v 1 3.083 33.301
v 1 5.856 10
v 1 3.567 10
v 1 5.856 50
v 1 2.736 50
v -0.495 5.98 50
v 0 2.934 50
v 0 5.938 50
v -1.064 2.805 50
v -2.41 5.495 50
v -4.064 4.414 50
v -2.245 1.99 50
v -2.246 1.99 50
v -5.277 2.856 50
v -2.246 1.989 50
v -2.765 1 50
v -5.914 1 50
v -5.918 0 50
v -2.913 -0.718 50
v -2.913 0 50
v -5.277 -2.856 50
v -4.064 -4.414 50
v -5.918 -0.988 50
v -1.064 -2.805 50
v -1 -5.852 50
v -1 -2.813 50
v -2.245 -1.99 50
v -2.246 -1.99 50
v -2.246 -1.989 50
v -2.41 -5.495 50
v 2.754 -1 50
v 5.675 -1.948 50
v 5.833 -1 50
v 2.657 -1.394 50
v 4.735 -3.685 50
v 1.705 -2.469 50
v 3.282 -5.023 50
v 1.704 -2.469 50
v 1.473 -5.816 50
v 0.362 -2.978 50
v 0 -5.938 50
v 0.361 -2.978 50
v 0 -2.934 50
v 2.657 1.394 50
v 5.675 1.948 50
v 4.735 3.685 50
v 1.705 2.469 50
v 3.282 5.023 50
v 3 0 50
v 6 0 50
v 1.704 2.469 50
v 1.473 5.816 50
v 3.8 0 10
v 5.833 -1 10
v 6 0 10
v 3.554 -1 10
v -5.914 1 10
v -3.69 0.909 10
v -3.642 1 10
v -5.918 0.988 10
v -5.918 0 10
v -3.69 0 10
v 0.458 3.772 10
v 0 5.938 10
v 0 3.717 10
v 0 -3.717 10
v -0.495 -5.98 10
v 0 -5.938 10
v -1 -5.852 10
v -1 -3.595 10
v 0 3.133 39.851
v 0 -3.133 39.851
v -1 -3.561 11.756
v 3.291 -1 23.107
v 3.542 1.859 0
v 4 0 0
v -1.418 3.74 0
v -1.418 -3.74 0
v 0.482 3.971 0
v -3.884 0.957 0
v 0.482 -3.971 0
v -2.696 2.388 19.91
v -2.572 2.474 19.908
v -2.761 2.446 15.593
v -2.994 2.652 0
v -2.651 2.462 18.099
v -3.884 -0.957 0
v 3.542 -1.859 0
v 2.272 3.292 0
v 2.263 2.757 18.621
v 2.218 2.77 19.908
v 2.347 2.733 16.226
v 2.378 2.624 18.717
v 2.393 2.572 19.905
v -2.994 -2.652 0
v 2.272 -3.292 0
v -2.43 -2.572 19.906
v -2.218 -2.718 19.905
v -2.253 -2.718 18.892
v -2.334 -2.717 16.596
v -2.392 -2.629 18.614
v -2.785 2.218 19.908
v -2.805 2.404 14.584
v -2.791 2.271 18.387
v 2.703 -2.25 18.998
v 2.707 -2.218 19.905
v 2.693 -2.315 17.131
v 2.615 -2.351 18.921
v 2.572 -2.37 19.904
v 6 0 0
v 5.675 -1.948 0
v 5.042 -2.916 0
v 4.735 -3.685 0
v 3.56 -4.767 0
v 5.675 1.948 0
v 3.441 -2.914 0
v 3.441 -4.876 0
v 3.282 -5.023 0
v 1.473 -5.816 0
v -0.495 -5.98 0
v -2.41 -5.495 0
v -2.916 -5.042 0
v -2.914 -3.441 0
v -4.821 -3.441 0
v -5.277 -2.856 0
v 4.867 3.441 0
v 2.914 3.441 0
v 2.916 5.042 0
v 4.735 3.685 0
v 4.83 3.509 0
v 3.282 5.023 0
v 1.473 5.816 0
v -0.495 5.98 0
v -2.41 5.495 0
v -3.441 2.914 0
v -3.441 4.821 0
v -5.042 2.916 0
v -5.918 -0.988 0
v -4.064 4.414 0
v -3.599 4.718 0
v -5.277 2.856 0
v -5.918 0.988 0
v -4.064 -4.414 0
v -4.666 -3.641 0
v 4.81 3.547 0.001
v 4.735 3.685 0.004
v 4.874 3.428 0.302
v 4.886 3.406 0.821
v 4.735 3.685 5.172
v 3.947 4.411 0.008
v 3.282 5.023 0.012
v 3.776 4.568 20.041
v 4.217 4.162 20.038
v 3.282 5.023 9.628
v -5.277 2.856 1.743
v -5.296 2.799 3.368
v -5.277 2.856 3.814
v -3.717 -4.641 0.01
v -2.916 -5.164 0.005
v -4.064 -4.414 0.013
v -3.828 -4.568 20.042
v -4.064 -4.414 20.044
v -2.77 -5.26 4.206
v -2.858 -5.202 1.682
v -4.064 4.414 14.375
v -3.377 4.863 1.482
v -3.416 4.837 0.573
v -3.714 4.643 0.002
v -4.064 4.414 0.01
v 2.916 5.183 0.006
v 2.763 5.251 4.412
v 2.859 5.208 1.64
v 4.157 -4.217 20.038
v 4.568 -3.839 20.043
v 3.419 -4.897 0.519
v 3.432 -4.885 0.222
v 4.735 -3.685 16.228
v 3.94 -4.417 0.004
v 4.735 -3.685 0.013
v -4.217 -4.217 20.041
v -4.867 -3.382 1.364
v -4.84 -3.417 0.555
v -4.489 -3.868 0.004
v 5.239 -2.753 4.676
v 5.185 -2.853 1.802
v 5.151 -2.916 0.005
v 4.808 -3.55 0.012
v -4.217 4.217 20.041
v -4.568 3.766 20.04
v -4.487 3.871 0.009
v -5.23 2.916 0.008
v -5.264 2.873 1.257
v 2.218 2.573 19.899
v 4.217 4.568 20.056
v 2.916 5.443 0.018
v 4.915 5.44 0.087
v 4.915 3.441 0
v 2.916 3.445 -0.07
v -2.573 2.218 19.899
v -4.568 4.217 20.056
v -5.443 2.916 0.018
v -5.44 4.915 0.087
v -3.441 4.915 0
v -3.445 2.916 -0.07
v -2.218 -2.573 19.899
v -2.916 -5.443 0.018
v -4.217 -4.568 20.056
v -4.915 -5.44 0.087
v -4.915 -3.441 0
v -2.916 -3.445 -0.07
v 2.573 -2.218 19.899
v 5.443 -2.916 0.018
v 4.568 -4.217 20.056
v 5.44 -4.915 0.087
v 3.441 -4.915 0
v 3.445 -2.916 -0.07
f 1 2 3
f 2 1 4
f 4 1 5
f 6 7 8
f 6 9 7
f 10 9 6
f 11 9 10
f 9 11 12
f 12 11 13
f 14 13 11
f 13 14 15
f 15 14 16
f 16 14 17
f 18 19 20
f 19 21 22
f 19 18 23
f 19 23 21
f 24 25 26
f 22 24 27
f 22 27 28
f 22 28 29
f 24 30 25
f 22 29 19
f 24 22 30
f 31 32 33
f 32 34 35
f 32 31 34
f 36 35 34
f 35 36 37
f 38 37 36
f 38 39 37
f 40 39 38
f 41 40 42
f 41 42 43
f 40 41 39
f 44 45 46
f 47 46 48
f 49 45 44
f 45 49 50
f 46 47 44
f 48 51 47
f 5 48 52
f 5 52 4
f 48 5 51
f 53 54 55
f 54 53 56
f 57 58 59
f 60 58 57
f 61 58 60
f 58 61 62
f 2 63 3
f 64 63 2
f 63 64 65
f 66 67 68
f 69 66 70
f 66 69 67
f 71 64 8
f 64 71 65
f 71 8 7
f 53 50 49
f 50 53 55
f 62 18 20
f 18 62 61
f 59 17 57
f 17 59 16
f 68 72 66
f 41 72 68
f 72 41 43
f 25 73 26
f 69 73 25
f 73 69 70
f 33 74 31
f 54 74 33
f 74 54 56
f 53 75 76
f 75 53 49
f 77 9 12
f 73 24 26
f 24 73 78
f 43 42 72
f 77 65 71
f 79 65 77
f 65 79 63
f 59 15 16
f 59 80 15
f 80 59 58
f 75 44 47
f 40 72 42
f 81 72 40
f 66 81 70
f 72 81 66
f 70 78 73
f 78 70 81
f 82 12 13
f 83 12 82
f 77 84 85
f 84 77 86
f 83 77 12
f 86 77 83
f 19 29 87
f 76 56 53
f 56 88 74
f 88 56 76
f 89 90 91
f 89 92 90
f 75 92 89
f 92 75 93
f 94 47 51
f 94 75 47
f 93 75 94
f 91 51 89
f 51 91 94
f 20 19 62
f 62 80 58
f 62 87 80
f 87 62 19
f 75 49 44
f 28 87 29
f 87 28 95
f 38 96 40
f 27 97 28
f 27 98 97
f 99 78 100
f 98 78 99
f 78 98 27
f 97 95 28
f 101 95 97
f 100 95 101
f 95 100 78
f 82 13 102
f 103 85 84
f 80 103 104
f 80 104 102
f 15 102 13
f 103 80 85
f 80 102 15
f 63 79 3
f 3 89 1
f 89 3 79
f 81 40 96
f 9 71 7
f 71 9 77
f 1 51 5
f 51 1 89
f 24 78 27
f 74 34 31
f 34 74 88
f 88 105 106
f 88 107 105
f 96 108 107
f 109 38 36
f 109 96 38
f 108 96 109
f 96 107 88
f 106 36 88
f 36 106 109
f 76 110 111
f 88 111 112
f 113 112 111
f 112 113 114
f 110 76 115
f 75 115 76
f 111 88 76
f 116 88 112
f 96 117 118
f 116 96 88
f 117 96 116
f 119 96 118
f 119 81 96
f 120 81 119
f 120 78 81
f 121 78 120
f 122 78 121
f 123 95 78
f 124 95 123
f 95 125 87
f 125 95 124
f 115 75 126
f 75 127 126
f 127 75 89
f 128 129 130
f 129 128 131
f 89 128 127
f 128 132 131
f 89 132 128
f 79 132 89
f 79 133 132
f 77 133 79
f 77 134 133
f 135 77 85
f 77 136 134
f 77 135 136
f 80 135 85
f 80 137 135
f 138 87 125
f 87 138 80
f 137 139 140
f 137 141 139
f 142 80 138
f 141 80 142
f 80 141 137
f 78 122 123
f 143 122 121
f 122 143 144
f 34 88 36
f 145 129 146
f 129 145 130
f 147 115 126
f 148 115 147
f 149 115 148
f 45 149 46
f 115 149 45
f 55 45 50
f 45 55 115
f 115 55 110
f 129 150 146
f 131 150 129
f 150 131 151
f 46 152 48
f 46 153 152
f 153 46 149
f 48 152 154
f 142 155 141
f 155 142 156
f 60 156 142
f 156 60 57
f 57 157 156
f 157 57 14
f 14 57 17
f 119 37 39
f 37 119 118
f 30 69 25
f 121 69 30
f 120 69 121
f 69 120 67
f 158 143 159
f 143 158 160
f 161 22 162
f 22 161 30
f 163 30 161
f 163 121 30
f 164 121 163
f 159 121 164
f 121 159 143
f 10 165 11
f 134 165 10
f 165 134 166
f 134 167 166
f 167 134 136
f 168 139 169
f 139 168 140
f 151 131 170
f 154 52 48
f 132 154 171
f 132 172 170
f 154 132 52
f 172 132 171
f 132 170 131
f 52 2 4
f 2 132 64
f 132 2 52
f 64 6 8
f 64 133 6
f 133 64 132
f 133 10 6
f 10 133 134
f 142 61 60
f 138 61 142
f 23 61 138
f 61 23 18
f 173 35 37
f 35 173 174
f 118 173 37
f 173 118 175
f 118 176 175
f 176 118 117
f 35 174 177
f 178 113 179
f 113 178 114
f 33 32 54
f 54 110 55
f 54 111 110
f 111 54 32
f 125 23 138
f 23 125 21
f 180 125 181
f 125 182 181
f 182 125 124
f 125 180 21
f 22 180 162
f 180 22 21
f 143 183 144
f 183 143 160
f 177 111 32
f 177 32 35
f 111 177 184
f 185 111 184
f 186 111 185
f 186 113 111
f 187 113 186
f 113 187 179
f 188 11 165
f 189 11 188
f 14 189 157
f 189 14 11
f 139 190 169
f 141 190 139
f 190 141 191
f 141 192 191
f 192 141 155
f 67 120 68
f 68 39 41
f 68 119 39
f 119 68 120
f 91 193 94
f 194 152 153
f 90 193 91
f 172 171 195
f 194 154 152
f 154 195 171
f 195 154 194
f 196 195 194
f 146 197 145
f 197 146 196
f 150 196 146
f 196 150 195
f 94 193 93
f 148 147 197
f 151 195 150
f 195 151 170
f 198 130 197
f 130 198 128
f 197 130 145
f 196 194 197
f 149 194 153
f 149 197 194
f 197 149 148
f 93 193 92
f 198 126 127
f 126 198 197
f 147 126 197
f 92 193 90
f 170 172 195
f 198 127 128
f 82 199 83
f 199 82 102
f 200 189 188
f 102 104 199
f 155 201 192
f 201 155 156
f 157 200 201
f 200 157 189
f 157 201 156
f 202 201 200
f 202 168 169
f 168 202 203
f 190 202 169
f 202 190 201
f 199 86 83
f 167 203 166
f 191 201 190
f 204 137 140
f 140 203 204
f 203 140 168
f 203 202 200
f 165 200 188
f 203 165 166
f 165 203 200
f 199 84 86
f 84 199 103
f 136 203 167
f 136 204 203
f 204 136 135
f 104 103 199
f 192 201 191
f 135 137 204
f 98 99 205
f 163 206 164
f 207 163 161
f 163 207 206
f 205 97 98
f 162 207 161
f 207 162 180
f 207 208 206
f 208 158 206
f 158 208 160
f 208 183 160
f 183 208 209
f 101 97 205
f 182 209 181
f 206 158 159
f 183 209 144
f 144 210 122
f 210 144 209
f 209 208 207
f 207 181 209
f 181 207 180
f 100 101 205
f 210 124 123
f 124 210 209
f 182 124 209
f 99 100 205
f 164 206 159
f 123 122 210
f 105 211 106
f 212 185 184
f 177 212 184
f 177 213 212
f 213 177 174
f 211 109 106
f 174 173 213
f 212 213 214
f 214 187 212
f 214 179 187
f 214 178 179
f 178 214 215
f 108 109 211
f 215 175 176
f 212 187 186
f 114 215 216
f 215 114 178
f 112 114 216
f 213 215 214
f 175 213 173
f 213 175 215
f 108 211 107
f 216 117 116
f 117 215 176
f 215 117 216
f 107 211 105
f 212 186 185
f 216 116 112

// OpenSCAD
difference() {cylinder(50, 6, 6);
    union(){
        cylinder(50+0.01, 4,3);
        for(i=[0:4])
            rotate([0,0,360/4*i]) translate([0,0,10]) cube([1,10,40]);
    }
}

for(i=[0:4])
    rotate([0,0,360/4*i+35]) 
translate([6,0,0]) rotate([-2,-2.5,55]) cube([2,2,20]);
